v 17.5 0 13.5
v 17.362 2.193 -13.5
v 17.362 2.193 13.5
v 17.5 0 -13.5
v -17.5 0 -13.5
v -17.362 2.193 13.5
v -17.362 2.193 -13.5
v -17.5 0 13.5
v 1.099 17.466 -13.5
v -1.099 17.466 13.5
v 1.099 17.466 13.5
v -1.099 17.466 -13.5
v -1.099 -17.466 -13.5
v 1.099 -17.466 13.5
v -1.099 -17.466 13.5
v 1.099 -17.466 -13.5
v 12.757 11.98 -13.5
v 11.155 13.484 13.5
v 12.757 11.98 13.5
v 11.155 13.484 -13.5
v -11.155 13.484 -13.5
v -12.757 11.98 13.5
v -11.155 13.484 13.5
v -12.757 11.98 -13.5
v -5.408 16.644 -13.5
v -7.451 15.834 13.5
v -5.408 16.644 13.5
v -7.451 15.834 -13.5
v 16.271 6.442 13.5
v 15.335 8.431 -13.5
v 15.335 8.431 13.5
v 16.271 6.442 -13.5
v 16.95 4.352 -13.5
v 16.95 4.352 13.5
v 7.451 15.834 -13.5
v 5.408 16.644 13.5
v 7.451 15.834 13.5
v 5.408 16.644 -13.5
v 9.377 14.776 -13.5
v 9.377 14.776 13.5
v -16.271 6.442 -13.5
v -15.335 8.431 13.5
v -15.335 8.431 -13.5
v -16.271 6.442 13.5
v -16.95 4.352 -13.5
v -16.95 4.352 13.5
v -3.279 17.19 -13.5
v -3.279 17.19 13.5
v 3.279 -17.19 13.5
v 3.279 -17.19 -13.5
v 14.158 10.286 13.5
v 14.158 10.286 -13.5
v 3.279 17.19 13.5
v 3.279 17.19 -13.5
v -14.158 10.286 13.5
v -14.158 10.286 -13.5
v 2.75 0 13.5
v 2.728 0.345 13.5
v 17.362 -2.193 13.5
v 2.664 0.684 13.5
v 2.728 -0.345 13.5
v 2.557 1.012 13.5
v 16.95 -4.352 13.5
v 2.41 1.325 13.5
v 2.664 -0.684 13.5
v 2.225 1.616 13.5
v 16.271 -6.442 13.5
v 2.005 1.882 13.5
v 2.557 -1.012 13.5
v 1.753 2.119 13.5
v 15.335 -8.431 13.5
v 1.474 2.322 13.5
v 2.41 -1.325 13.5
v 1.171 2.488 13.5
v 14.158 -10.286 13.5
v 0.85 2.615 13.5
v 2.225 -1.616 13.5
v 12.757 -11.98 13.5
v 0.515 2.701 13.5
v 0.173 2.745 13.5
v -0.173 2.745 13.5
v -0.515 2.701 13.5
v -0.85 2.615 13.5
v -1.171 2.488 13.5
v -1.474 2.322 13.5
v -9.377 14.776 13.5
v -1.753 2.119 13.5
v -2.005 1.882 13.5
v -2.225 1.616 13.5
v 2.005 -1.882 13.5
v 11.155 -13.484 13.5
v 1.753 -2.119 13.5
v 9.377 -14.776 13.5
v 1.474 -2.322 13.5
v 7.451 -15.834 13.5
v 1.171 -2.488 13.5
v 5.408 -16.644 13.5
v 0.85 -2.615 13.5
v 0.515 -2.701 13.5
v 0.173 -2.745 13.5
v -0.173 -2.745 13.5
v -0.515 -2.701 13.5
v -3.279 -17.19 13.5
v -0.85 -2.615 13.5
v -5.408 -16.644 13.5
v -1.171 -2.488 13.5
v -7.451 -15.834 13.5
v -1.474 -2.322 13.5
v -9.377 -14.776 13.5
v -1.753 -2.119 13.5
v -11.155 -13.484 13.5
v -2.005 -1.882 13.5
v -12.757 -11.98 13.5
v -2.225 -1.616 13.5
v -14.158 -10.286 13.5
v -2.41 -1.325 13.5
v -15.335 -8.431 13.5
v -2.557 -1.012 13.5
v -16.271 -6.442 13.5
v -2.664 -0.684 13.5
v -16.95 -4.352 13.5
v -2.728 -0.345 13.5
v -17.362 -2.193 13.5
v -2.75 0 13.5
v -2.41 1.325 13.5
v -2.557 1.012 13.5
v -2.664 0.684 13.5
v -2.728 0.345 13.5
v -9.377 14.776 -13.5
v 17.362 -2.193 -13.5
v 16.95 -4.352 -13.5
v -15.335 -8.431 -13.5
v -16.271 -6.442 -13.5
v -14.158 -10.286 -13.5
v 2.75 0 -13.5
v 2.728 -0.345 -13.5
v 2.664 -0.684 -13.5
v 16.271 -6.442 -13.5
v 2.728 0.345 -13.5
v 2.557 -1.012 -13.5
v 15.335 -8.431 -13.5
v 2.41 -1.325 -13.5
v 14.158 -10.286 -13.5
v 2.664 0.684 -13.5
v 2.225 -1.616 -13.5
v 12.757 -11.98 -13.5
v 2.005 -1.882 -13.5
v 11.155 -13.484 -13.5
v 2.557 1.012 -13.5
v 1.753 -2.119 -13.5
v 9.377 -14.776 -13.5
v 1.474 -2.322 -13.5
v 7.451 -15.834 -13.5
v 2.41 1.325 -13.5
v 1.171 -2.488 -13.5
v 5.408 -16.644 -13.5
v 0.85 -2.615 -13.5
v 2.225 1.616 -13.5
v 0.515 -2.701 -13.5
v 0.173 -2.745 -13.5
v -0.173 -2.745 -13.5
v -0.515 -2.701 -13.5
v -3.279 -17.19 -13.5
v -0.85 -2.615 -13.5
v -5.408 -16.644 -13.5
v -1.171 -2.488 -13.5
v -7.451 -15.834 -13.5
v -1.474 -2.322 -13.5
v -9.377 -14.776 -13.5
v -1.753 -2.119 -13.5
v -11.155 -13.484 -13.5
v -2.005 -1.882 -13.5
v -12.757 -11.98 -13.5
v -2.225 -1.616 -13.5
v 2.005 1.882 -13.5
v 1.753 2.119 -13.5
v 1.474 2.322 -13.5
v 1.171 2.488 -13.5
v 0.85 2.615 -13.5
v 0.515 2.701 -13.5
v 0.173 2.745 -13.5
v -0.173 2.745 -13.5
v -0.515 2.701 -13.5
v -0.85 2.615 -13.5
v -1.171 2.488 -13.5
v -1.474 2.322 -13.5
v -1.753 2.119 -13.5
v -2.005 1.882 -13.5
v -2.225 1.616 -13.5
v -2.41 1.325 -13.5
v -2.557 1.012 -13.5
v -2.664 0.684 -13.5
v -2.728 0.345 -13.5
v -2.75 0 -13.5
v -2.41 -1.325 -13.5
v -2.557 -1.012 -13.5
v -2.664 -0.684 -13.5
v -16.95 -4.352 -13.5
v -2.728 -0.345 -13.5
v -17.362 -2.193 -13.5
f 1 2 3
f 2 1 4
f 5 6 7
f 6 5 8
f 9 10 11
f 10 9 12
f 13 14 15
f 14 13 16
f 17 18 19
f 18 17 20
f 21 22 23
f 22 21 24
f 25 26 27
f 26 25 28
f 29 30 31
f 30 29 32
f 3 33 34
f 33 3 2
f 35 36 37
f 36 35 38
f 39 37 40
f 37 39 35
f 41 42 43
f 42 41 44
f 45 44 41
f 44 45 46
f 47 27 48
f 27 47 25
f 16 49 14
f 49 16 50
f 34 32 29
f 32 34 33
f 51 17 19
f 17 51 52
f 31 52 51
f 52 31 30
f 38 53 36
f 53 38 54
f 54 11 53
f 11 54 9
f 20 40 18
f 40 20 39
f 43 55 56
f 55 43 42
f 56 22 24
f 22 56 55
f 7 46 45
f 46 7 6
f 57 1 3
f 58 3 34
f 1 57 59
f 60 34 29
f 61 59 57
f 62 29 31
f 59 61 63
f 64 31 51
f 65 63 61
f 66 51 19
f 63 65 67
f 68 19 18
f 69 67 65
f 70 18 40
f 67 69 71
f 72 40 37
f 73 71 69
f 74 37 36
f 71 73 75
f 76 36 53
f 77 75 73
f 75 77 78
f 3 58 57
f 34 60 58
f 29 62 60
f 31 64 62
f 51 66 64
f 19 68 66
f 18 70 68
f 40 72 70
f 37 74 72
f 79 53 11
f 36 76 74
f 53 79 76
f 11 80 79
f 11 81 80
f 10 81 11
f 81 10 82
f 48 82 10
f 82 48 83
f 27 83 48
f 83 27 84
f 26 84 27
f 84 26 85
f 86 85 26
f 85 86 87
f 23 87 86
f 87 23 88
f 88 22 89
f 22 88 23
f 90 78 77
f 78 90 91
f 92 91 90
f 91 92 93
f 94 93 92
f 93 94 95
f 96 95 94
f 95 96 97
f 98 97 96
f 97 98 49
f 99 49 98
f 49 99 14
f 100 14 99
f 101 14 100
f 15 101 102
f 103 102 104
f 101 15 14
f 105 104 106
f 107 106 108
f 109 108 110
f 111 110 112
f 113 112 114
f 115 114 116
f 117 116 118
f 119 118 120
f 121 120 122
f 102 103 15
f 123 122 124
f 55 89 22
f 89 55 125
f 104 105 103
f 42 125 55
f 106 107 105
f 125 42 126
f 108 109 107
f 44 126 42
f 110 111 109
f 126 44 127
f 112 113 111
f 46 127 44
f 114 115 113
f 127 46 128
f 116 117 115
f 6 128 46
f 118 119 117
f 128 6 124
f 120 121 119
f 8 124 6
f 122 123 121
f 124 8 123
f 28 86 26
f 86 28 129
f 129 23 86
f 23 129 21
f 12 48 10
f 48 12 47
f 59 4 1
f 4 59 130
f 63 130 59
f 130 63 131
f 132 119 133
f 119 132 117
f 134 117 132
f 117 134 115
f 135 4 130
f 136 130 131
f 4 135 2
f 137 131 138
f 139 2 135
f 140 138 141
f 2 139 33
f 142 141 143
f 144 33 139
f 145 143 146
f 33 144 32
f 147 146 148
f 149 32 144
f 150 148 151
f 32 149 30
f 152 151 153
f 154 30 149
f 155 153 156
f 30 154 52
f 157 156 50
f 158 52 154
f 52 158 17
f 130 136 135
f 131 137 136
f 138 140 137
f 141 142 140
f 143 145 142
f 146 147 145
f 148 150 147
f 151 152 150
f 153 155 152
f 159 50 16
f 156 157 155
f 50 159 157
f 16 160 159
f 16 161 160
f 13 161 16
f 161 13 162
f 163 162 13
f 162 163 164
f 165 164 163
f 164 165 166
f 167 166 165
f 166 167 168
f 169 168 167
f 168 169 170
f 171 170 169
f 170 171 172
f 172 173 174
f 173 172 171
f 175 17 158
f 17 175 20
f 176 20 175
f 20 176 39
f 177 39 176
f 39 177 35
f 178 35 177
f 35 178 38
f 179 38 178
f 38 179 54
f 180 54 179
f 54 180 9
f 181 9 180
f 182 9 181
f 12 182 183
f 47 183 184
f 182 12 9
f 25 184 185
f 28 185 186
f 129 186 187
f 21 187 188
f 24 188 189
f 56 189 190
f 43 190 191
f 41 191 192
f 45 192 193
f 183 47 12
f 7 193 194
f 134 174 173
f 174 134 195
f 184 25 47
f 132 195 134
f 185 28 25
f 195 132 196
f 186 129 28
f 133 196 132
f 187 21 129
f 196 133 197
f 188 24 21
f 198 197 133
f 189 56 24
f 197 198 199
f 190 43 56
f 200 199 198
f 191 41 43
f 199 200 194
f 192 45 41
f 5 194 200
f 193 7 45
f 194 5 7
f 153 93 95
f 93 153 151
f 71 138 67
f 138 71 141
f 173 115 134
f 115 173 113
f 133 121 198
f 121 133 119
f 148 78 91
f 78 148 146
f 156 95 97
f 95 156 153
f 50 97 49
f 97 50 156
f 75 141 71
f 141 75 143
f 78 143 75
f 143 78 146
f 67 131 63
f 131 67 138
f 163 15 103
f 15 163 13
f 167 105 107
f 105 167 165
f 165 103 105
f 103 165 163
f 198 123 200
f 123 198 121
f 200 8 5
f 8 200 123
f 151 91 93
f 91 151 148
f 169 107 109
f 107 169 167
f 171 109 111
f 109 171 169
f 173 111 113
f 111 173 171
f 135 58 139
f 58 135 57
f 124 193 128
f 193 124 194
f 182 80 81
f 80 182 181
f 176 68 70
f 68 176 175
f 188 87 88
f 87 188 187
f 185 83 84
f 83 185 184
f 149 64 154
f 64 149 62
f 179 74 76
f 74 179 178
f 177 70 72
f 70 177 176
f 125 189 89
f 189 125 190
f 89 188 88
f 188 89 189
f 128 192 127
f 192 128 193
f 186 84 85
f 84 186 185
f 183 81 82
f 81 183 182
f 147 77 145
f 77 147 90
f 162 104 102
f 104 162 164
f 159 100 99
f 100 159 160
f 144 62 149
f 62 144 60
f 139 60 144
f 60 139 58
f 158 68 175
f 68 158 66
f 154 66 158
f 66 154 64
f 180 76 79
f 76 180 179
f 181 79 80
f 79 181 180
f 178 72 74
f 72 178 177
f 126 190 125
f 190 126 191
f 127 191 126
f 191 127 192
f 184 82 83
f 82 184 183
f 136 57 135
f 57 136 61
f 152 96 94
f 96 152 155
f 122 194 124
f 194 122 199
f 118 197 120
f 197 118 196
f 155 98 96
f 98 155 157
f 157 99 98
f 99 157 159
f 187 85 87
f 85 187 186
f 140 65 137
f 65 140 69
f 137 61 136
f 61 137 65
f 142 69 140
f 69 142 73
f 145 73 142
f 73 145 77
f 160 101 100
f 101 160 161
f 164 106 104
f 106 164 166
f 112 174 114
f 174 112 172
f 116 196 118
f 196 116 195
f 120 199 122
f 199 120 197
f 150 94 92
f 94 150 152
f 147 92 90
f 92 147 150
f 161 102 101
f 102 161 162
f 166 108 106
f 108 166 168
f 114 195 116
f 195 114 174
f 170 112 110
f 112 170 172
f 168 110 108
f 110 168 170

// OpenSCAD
$fn = 50;


difference() {
	union() {
		translate(v = [0, 0, -13.5000000000]) {
			cylinder(h = 27, r = 17.5000000000);
		}
	}
	union() {
		translate(v = [0, 0, -100.0000000000]) {
			cylinder(h = 200, r = 2.7500000000);
		}
	}
}
